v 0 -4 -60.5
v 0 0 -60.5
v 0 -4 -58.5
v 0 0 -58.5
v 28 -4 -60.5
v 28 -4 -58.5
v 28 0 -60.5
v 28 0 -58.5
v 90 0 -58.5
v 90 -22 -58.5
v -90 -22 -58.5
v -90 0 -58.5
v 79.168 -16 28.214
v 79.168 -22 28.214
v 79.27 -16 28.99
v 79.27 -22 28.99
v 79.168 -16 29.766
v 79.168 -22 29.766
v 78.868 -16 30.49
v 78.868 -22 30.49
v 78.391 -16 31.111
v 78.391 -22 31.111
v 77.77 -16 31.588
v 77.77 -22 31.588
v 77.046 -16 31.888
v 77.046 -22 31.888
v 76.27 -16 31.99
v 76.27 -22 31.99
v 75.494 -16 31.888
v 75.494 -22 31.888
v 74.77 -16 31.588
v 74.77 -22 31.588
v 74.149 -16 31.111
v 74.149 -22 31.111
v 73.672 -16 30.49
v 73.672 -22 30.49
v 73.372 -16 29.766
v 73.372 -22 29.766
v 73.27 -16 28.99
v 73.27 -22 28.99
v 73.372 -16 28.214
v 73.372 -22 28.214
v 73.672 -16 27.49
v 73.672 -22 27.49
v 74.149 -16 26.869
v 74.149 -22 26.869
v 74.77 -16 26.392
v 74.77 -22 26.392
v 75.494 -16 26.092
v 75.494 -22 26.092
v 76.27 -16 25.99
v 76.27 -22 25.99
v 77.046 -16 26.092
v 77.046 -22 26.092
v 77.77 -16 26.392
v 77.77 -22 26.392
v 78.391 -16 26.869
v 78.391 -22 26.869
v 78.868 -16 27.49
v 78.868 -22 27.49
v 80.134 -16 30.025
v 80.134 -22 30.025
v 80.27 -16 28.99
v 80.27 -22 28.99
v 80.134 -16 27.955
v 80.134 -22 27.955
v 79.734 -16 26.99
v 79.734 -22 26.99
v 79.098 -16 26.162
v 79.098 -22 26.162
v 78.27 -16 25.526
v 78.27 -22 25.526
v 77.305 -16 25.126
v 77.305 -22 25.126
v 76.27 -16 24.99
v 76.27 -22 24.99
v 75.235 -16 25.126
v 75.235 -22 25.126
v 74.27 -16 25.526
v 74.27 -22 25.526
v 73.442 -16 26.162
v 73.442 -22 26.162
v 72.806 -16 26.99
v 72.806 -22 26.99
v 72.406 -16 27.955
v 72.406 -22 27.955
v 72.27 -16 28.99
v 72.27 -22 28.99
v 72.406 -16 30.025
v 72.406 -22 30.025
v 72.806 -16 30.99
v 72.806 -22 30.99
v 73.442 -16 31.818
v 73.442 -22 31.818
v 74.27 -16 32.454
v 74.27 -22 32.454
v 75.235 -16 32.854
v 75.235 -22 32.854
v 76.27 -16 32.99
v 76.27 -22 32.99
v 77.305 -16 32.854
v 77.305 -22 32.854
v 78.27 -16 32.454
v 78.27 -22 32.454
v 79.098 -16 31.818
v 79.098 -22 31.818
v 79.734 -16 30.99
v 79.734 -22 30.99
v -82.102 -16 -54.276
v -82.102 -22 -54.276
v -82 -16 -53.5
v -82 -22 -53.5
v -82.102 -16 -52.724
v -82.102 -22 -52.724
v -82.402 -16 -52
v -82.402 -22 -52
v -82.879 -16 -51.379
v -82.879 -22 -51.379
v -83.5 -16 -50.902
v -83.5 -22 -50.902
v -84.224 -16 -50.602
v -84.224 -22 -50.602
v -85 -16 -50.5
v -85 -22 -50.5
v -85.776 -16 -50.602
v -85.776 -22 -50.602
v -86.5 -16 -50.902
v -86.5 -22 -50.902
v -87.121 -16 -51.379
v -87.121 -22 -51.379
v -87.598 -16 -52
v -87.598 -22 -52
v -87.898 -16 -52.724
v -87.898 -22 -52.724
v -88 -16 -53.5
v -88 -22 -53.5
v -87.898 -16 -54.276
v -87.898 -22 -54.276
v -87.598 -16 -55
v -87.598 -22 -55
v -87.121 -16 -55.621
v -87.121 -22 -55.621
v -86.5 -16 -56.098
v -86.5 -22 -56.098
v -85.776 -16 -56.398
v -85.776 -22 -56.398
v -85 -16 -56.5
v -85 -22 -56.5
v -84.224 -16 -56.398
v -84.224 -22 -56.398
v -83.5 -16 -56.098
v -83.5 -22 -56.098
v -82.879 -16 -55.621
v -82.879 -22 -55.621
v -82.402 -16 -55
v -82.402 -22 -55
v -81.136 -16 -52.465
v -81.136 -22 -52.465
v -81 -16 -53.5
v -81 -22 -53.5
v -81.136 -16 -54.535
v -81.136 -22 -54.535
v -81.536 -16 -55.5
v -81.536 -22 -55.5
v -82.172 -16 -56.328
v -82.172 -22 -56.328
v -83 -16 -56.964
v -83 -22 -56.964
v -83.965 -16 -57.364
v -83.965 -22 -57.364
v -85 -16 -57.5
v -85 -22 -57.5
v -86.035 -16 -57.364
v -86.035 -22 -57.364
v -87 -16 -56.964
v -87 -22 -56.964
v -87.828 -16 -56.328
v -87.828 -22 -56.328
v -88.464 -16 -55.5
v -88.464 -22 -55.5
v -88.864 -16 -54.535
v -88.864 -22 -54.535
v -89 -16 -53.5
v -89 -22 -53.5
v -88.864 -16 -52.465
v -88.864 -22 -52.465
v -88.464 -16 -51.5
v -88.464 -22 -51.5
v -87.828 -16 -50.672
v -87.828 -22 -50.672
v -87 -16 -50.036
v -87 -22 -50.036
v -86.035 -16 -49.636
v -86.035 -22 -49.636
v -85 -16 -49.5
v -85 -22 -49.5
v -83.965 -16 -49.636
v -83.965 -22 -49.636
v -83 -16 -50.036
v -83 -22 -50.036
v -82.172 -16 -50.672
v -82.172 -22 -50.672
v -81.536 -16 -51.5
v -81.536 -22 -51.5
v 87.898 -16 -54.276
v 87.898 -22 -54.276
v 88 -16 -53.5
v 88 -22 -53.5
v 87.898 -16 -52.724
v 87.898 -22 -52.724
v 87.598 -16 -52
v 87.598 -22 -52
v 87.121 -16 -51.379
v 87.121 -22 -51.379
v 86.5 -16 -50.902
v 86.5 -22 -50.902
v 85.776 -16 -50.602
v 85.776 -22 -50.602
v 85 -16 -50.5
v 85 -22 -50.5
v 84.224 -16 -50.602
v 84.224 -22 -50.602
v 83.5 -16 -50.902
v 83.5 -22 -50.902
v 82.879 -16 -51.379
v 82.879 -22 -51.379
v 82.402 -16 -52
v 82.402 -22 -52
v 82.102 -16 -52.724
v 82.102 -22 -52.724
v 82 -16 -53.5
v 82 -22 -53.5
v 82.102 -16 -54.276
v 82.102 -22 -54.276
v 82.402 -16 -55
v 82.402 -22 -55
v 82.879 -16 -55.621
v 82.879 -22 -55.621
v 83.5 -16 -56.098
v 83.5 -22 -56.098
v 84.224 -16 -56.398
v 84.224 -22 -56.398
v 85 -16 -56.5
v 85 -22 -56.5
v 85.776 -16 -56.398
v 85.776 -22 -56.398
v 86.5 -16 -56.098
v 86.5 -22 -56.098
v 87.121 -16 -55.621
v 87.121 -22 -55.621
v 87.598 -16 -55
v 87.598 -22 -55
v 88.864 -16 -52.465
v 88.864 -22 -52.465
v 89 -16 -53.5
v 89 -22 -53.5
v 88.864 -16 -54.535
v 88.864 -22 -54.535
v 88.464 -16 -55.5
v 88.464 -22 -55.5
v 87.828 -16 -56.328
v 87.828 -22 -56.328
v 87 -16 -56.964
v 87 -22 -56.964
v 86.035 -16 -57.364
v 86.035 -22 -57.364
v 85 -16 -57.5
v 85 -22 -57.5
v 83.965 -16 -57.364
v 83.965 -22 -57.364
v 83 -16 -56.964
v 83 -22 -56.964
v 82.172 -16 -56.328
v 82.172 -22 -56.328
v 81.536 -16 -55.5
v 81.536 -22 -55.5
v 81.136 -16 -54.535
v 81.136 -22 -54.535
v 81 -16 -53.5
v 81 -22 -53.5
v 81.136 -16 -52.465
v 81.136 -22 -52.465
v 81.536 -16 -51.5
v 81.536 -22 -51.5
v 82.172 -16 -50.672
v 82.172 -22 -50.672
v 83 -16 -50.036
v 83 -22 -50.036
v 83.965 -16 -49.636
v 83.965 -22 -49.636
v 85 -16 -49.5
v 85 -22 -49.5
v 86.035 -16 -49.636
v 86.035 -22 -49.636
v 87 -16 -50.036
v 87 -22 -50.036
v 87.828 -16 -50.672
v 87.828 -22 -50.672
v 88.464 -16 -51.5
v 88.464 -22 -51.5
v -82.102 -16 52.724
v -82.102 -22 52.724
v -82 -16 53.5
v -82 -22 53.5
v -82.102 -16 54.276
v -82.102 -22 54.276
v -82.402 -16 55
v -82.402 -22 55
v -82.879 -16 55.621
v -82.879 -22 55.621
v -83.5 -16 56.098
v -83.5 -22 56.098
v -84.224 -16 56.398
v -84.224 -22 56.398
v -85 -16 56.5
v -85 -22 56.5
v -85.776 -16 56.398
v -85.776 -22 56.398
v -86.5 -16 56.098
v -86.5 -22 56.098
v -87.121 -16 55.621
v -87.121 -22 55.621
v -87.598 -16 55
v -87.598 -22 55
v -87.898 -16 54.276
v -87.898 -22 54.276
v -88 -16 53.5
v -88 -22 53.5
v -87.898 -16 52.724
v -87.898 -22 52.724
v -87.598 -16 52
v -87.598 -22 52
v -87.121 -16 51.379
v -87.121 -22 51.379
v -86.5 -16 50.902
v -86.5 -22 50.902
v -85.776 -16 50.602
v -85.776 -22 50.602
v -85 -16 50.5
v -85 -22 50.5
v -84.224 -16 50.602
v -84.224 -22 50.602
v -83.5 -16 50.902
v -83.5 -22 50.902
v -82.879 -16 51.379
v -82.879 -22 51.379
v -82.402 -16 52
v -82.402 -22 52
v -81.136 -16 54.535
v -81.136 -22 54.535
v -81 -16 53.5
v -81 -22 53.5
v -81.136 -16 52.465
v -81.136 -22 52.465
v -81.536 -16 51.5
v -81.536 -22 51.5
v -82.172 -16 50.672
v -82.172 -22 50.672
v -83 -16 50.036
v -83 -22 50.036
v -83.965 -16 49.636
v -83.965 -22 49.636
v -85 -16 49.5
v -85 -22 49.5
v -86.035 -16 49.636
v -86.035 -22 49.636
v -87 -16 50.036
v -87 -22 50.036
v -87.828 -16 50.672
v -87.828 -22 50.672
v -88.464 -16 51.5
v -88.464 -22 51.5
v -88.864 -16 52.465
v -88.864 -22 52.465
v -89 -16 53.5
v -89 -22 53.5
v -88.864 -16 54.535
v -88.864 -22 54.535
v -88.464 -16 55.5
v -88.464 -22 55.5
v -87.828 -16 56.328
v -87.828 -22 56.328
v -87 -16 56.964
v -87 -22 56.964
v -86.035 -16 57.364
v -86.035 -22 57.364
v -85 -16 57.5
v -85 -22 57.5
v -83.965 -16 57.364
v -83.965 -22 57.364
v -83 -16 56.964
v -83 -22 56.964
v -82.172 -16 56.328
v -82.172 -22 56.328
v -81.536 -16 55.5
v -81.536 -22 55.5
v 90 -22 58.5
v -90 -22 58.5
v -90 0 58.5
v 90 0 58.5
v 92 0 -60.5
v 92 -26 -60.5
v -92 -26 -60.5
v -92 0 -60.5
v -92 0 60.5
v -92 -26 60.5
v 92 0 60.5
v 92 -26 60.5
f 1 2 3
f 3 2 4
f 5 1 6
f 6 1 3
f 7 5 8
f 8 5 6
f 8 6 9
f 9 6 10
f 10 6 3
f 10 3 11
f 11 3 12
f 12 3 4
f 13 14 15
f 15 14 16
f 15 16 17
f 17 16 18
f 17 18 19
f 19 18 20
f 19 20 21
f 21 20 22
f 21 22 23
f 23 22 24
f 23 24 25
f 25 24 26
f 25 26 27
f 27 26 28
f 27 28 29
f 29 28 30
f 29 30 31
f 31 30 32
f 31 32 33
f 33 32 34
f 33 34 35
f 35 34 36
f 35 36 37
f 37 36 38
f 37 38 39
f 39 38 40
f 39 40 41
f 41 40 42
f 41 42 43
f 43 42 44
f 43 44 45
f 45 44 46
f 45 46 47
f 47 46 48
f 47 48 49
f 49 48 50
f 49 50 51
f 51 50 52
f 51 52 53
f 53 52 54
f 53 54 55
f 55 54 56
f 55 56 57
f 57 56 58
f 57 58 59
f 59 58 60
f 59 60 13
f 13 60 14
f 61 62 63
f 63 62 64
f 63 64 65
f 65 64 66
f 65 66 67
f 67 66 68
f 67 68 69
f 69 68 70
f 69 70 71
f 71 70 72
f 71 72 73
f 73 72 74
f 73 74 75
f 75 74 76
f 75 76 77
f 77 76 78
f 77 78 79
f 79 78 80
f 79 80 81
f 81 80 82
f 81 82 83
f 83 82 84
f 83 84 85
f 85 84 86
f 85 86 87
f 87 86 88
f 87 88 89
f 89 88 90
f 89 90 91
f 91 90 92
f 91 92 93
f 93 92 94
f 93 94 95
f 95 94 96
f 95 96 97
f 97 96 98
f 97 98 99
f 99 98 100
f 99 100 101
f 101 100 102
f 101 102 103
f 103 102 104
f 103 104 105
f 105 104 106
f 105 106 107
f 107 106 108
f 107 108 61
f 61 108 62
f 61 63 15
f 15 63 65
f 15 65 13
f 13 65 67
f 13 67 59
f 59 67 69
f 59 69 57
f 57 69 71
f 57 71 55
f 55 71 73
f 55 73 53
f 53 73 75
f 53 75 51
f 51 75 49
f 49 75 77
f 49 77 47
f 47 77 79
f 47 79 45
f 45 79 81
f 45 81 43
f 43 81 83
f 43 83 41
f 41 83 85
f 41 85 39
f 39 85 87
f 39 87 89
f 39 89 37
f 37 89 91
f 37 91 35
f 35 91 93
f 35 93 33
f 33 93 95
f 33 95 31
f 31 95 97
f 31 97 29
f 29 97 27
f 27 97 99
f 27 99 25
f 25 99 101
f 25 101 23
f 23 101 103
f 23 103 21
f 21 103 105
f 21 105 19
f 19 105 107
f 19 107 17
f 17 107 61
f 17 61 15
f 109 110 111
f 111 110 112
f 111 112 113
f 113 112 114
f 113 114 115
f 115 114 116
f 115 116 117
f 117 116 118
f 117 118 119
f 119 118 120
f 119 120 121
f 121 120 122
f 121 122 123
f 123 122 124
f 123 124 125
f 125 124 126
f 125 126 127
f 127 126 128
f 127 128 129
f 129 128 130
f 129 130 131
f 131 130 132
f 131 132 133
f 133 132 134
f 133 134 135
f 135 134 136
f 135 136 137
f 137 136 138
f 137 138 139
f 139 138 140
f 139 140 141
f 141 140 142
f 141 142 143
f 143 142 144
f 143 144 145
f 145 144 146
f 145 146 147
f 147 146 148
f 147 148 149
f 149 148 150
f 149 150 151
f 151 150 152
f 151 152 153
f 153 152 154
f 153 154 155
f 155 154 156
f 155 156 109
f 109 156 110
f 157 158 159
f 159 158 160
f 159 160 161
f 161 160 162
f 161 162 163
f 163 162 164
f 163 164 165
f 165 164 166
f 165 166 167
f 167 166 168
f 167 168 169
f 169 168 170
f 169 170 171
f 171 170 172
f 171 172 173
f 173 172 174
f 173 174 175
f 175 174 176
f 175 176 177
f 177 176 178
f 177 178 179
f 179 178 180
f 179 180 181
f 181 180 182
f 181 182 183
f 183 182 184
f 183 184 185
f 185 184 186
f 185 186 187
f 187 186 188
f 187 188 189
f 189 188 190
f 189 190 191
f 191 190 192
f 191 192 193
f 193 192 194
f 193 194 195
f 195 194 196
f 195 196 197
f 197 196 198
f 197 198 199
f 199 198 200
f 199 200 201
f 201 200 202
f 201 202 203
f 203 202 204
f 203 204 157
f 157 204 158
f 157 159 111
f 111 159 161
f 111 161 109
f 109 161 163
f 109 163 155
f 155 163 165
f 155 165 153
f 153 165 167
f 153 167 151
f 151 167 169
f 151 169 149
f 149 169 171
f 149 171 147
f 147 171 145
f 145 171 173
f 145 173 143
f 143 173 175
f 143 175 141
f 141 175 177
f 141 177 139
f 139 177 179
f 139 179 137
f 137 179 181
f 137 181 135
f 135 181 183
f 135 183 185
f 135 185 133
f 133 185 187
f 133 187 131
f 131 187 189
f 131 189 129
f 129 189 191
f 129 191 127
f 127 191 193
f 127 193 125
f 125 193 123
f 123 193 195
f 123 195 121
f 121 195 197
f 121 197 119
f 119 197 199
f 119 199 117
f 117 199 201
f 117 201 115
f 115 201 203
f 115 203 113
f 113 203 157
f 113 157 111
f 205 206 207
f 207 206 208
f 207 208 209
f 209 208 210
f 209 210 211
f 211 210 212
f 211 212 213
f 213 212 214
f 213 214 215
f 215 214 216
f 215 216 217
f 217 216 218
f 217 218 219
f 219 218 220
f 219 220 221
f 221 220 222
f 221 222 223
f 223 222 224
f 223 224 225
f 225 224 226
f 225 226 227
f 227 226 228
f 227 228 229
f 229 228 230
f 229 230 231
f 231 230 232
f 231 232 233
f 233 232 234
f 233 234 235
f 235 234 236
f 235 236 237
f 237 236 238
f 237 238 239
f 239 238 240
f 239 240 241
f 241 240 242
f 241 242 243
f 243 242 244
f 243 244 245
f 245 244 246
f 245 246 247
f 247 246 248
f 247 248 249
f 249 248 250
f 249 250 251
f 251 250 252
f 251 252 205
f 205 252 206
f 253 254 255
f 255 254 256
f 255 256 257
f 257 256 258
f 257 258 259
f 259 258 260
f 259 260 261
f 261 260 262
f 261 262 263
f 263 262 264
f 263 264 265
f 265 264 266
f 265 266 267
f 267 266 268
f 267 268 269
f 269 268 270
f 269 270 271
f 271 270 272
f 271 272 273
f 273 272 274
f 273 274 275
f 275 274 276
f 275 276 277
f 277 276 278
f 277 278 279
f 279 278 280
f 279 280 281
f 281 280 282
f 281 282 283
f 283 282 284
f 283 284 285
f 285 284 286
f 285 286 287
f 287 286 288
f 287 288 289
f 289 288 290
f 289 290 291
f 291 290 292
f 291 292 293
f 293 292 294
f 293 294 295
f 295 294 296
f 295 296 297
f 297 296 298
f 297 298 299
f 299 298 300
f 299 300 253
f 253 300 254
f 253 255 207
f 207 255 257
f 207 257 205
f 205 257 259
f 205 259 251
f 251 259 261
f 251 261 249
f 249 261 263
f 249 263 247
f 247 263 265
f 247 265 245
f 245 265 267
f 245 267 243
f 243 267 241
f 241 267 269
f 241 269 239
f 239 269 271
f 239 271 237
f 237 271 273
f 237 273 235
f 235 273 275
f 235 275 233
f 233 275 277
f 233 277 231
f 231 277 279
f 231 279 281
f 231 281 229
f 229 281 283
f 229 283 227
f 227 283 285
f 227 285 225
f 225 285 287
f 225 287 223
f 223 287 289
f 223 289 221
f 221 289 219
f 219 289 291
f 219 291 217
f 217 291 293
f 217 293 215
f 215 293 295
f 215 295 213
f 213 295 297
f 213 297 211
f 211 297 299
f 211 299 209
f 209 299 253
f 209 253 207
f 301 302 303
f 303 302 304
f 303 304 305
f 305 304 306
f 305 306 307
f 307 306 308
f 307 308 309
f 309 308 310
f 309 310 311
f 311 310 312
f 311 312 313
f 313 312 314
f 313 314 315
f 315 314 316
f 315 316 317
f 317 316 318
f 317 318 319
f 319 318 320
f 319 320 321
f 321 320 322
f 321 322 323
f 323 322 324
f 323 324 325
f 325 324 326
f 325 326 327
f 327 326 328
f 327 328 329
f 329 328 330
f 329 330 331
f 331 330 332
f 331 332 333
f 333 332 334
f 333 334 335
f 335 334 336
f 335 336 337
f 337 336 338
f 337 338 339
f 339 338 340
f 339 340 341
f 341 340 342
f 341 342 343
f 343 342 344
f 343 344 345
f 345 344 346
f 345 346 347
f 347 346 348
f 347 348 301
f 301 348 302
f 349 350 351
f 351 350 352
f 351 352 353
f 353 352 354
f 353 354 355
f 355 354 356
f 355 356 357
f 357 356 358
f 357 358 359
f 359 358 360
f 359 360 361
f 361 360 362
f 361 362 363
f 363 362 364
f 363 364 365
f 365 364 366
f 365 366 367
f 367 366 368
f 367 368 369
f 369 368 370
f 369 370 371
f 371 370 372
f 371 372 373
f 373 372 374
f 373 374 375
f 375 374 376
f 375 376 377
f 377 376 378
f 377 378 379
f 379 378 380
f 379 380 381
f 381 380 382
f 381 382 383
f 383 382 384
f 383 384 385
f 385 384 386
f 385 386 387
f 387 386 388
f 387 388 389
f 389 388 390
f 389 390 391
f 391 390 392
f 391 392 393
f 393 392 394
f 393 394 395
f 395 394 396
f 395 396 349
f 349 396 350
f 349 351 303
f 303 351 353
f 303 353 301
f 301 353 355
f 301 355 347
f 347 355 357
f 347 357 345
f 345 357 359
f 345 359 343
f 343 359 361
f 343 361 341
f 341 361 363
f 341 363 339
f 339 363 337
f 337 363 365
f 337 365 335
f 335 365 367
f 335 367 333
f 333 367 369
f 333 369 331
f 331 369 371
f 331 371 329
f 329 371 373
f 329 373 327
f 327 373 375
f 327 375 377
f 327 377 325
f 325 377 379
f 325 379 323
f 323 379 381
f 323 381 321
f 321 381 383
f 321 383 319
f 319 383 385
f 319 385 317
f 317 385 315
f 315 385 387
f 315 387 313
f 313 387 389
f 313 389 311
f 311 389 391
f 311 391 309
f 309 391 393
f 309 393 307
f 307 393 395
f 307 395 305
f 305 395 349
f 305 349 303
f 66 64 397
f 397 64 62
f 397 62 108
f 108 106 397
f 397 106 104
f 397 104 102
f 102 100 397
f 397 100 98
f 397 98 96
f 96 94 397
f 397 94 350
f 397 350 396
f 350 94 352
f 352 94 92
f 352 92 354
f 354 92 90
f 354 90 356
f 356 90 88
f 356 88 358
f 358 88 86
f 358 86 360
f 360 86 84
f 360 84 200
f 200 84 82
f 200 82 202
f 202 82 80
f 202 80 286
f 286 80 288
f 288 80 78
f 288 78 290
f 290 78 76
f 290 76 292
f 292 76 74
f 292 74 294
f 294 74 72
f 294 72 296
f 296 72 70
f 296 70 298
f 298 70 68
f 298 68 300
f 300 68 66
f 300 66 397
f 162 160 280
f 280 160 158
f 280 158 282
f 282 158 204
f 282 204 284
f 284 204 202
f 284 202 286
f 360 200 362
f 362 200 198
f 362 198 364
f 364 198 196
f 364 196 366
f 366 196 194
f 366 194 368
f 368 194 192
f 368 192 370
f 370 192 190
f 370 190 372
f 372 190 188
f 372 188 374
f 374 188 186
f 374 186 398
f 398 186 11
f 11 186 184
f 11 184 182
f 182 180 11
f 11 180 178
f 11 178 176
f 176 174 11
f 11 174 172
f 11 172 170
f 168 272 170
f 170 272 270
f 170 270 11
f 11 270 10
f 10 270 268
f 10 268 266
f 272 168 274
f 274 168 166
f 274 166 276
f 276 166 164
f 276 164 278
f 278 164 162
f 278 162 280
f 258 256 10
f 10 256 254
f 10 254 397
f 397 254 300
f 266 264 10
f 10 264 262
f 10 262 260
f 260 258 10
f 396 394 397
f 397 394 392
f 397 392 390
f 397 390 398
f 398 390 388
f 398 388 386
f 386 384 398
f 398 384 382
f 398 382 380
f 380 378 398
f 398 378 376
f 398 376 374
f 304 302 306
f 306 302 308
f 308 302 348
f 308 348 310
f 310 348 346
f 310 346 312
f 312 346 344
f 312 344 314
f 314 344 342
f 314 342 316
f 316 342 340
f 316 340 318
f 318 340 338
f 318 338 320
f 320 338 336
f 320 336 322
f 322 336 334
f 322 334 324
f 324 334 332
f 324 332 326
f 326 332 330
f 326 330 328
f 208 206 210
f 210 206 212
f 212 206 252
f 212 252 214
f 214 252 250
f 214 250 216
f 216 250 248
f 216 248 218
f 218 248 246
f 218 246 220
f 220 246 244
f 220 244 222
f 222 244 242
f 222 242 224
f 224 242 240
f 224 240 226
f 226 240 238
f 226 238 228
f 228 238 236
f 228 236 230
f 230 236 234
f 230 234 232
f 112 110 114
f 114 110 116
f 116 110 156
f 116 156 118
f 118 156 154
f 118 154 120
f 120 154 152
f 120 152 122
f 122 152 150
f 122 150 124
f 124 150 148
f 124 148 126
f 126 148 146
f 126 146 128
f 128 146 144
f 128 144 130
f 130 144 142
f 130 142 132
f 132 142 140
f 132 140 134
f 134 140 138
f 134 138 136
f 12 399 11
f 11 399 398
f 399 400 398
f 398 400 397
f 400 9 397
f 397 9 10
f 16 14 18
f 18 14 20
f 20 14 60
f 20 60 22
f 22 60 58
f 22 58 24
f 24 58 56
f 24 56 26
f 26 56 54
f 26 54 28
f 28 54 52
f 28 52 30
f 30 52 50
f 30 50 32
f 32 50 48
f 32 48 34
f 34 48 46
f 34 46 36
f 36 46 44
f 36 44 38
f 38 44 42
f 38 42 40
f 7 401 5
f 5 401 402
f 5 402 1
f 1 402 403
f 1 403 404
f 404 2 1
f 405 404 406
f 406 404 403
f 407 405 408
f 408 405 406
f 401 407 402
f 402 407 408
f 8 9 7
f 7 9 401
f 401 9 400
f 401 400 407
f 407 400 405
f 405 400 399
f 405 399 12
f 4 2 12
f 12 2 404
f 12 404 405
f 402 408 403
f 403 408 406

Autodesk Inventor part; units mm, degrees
ref_plane "YZ Plane" through (0, 0, 0) normal (1, 0, 0) x (0, 1, 0)
ref_plane "XZ Plane" through (0, 0, 0) normal (0, 1, 0) x (-1, 0, 0)
ref_plane "XY Plane" through (0, 0, 0) normal (0, 0, 1) x (1, 0, 0)
sketch "Base" plane through (0, 0, 0) normal (0, 1, 0) x (-1, 0, 0)
  line L0 (92, 60.5) -> (-92, 60.5)
  line L1 (-92, 60.5) -> (-92, -60.5)
  line L2 (-92, -60.5) -> (92, -60.5)
  line L3 (92, -60.5) -> (92, 60.5)
  line L4 (92, 60.5) -> (-92, -60.5) construction
  line L5 (-92, 60.5) -> (92, -60.5) construction
  point P0 (0, 0)
  dimension "d0" = 184
  dimension "d1" = 121
extrude "Base - Estrutura" add sketch "Base" against normal blind 26
sketch "Esboço2" plane through (0, 0, 0) normal (0, 1, 0) x (1, 0, 0)
  line L0 (-90, -58.5) -> (90, -58.5)
  line L1 (90, -58.5) -> (90, 58.5)
  line L2 (90, 58.5) -> (-90, 58.5)
  line L3 (-90, 58.5) -> (-90, -58.5)
  line L4 (-90, -58.5) -> (90, 58.5) construction
  line L5 (90, -58.5) -> (-90, 58.5) construction
  point P0 (0, 0)
  dimension "d4" = 180
  dimension "d5" = 117
extrude "Base Interna" cut sketch "Esboço2" against normal blind 22
sketch "Esboço3" plane through (0, -22, 0) normal (0, 1, 0) x (1, 0, 0)
  circle A0 centre (-85, -53.5) radius 4
  line L0 (-92, 60.5) -> (-92, -60.5) projected
  line L1 (-92, -60.5) -> (92, -60.5) projected
  circle A1 centre (-85, -53.5) radius 3
  line L2 (-90, -58.5) -> (-90, 58.5) projected
  line L3 (90, 58.5) -> (90, -58.5) projected
  circle A2 centre (-85, 53.5) radius 4
  circle A3 centre (-85, 53.5) radius 3
  line L4 (-90, 58.5) -> (90, 58.5) projected
  line L5 (90, -58.5) -> (-90, -58.5) projected
  circle A4 centre (85, 53.5) radius 3
  circle A5 centre (85, 53.5) radius 4
  line L6 (92, -60.5) -> (92, 60.5) projected
  line L7 (92, 60.5) -> (-92, 60.5) projected
  circle A6 centre (76.27, -28.99) radius 4
  circle A7 centre (76.27, -28.99) radius 3
  point P0 (0, 0)
  dimension "d8" = 8
  dimension "d9" = 7
  dimension "d10" = 7
  dimension "d11" = 6
  dimension "d12" = 7
  dimension "d13" = 7
  dimension "d14" = 8
  dimension "d15" = 31.51
  dimension "d16" = 15.73
  dimension "d17" = 6
  dimension "d29" = 6
  dimension "d30" = 8
  dimension "d31" = 8
  dimension "d32" = 6
extrude "Furos do Pino Guia" add sketch "Esboço3" along normal blind 6 contours A0 | A2 | A5 | A6
sketch "Esboço4" plane through (92, 0, -60.5) normal (0, 0, -1) x (-1, 0, 0)
  line L0 (92, 0) -> (64, 0)
  line L1 (64, 0) -> (64, -4)
  line L2 (64, -4) -> (92, -4)
  line L3 (92, -4) -> (92, 0)
  line L4 (92, 0) -> (64, -4) construction
  line L5 (64, 0) -> (92, -4) construction
  line L6 (184, 0) -> (184, -26) projected
  line L7 (0, 0) -> (184, 0) projected
  line L8 (184, -26) -> (0, -26) projected
  point P0 (92, 0)
  point P1 (78, -2)
  point P2 (64, -2)
  dimension "d20" = 120
  dimension "d21" = 28
  dimension "d22" = 0
  dimension "d24" = 4
extrude "Chaveta para USB-C ESP32" cut sketch "Esboço4" along normal blind 4 and the other way blind 2
properties part number "base_traseira_3DPrint"
